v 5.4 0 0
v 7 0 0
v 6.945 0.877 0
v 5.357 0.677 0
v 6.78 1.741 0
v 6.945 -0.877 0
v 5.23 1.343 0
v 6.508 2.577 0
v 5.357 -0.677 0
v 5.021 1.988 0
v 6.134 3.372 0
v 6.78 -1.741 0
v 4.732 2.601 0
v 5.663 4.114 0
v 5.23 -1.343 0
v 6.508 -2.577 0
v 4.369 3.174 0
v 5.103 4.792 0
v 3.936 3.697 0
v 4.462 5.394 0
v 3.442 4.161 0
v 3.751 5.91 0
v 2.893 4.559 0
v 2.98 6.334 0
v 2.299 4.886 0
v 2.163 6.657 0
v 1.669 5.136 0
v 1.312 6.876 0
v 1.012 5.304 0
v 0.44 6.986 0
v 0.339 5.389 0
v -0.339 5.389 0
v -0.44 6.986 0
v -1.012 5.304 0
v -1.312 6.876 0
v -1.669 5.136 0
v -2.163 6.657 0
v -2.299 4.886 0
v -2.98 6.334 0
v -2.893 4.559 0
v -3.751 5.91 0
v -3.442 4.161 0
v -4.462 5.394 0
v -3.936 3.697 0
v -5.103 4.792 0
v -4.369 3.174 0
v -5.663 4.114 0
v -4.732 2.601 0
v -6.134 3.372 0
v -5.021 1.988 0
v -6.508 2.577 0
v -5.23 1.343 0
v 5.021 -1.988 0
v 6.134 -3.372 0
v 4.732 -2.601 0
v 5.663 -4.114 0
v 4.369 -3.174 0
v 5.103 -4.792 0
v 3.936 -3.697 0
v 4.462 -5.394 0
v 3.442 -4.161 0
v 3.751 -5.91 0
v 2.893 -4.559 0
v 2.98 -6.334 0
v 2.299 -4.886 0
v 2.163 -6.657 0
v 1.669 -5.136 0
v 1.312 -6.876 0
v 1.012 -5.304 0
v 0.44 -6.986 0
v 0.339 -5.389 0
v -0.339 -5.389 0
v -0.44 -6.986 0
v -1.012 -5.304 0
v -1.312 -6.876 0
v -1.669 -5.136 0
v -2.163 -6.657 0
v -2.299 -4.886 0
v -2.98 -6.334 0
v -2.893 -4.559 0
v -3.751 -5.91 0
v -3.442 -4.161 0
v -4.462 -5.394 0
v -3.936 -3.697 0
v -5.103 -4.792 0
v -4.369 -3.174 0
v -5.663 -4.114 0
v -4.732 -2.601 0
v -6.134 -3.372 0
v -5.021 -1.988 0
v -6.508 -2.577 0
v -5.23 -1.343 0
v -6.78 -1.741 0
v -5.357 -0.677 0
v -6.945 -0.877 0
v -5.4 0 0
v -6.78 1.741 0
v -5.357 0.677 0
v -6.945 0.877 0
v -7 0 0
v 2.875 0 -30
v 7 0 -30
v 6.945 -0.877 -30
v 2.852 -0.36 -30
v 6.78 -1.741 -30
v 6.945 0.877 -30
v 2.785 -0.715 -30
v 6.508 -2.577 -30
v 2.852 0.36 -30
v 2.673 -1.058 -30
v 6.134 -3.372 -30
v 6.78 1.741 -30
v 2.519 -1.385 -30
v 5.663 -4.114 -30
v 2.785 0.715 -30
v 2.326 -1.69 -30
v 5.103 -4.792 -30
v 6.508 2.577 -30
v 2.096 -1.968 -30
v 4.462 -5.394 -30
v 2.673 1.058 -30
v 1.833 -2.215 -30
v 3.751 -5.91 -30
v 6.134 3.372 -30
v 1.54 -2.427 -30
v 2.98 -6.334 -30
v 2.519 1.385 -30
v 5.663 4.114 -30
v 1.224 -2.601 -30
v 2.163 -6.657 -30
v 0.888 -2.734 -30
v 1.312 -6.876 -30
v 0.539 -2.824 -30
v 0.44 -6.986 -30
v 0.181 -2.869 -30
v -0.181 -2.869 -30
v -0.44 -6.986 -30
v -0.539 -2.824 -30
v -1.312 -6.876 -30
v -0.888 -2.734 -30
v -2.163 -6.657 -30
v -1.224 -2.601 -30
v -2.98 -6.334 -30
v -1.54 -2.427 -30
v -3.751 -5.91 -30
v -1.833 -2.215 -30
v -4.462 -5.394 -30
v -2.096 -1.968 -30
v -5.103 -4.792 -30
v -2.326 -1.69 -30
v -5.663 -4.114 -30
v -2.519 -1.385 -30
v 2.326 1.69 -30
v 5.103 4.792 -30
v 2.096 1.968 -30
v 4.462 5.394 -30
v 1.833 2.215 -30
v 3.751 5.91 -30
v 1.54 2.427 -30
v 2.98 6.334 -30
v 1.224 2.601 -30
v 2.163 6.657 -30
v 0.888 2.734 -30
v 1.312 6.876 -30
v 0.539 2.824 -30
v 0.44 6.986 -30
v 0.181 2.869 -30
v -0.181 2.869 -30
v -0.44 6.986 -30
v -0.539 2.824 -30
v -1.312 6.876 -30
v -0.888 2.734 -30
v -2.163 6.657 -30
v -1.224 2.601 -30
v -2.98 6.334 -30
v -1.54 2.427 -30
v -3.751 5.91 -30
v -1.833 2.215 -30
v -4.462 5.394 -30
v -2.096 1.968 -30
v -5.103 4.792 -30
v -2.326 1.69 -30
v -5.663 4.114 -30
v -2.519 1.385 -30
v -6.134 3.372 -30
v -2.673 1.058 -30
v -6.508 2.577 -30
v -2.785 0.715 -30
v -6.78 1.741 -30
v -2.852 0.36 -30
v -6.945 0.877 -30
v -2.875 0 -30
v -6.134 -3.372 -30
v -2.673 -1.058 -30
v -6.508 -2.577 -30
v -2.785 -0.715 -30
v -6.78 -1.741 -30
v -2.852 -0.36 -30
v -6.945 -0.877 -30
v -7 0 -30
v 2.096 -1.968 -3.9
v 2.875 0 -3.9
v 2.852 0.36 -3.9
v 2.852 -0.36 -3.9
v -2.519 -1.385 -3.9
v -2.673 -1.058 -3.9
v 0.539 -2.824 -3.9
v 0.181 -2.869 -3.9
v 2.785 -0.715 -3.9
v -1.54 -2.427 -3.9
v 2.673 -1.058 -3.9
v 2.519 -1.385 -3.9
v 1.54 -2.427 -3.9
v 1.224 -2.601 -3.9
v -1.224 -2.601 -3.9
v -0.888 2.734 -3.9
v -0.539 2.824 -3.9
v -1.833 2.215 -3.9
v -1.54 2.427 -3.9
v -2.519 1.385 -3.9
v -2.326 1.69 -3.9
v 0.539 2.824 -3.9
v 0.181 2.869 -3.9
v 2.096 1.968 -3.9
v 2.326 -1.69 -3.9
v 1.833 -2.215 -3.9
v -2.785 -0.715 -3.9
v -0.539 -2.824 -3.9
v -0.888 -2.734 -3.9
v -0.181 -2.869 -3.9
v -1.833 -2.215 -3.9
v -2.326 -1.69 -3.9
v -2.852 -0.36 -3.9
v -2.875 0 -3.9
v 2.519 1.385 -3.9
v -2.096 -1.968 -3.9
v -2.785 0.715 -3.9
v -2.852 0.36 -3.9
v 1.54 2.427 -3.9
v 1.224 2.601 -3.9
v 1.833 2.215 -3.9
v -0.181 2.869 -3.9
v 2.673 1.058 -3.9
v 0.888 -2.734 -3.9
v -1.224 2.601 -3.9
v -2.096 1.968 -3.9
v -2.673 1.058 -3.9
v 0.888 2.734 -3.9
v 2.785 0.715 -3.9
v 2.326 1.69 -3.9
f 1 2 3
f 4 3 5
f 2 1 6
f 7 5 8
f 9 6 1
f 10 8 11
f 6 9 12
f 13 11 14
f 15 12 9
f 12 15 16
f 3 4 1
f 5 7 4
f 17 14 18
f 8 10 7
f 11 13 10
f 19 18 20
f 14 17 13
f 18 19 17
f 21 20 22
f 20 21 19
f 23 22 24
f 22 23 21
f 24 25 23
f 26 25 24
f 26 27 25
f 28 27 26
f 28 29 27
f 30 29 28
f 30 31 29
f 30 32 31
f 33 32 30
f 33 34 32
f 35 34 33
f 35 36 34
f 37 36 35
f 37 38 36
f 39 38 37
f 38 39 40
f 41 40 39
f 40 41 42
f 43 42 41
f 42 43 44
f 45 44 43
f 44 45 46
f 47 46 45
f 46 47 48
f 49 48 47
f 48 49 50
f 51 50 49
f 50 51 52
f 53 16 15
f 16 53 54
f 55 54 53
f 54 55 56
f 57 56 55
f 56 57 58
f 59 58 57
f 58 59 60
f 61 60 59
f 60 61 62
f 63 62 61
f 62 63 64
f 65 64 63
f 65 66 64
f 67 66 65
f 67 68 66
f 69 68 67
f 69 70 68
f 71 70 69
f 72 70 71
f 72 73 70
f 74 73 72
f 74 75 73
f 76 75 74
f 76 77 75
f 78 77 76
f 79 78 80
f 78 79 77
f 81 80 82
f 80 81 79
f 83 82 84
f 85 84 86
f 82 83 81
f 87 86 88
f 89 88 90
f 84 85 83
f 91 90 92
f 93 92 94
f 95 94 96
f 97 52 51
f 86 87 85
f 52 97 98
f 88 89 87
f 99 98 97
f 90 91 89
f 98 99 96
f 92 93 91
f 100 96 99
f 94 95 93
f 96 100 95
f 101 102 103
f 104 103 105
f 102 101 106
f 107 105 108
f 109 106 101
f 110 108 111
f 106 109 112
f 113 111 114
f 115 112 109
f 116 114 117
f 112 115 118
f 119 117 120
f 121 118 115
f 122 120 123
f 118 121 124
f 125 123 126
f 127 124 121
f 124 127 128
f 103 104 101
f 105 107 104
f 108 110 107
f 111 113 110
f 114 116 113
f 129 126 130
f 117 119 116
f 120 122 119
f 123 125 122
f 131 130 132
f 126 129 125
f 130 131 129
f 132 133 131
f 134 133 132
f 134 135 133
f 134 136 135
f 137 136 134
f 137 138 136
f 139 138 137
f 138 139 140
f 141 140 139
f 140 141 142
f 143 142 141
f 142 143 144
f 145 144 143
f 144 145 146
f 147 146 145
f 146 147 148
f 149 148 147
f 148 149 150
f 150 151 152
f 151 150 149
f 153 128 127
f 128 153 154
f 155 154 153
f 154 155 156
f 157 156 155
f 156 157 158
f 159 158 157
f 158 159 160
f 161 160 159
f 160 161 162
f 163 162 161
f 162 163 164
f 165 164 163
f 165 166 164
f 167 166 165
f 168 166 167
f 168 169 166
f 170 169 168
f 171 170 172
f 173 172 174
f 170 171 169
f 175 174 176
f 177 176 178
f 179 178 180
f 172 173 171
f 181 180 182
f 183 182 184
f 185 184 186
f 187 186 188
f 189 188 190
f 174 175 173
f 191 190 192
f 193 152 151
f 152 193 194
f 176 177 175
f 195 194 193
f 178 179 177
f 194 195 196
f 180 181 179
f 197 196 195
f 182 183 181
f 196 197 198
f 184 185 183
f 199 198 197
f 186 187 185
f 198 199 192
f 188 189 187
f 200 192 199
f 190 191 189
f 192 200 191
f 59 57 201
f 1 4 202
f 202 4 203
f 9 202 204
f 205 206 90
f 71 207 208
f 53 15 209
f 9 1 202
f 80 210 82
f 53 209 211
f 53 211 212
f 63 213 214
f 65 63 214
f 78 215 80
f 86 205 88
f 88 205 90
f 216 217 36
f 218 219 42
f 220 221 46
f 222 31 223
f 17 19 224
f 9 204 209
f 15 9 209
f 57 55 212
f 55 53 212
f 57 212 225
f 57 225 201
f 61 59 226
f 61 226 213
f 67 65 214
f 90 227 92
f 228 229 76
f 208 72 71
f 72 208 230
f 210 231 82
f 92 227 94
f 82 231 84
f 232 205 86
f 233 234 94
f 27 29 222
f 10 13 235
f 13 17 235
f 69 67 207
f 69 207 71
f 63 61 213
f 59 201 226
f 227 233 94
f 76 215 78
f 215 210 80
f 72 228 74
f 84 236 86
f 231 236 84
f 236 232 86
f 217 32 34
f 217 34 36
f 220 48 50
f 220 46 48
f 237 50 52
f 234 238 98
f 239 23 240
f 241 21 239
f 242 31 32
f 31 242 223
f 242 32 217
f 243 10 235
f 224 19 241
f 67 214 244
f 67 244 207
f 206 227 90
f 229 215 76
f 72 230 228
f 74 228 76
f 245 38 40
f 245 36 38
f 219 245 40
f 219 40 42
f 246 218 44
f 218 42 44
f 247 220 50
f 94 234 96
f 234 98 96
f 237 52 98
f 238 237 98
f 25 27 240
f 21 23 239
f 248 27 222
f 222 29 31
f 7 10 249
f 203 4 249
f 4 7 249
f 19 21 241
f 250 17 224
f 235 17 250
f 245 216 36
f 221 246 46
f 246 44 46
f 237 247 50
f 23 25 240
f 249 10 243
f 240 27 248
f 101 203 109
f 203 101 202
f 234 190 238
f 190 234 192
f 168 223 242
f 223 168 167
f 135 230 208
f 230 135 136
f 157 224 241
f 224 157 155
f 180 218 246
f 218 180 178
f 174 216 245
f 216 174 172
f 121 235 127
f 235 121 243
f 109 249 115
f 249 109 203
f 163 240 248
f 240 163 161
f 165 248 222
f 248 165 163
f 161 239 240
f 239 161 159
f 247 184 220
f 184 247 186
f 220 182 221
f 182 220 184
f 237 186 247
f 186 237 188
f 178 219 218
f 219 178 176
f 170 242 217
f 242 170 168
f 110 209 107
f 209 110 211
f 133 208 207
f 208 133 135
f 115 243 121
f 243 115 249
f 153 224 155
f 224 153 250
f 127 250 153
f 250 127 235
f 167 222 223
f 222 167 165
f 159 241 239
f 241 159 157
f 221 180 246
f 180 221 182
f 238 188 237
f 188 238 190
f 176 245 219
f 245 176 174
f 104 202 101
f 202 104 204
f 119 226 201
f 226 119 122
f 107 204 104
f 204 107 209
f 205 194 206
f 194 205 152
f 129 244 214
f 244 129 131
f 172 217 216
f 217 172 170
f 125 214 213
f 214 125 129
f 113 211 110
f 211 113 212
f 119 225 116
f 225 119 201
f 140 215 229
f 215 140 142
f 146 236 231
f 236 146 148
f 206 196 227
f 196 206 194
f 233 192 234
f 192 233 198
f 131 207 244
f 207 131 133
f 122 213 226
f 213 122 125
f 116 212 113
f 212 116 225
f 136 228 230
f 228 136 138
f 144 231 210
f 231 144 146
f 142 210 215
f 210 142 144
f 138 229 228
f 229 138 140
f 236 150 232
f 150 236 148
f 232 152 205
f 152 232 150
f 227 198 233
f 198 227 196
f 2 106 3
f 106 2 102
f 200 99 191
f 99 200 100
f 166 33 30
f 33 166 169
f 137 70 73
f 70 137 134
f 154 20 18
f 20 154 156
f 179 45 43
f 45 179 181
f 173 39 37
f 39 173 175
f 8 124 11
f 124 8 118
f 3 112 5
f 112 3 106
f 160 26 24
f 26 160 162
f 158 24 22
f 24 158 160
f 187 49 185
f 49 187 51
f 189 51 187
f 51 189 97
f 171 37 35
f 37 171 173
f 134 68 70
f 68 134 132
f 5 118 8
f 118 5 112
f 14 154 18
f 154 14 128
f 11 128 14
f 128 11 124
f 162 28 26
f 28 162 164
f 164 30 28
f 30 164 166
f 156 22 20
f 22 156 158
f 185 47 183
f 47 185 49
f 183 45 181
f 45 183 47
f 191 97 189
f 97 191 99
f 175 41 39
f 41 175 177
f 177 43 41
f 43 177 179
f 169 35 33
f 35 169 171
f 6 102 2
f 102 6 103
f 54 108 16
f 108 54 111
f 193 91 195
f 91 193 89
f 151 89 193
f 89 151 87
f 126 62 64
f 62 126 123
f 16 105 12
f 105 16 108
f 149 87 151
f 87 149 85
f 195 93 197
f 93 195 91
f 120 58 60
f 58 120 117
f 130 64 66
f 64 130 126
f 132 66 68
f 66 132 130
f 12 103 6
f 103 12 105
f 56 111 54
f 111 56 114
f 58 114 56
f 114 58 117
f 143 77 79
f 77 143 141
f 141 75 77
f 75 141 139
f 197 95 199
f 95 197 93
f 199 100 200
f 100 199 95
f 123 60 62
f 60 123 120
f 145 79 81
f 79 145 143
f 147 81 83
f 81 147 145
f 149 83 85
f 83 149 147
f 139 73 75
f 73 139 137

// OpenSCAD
$fn = 50;


difference() {
	union() {
		translate(v = [0, 0, -30.0000000000]) {
			cylinder(h = 30, r = 7.0000000000);
		}
		cylinder(h = 0, r = 16.0000000000);
	}
	union() {
		translate(v = [0, 0, 0]) {
			rotate(a = [0, 0, 0]) {
				difference() {
					union() {
						#translate(v = [0, 0, -30.0000000000]) {
							cylinder(h = 30, r = 2.6000000000);
						}
						#translate(v = [0, 0, -3.9000000000]) {
							cylinder(h = 3.9000000000, r1 = 2.8750000000, r2 = 5.4000000000);
						}
						#translate(v = [0, 0, -30.0000000000]) {
							cylinder(h = 30, r = 2.8750000000);
						}
						#translate(v = [0, 0, -30.0000000000]) {
							cylinder(h = 30, r = 2.6000000000);
						}
					}
					union();
				}
			}
		}
	}
}
